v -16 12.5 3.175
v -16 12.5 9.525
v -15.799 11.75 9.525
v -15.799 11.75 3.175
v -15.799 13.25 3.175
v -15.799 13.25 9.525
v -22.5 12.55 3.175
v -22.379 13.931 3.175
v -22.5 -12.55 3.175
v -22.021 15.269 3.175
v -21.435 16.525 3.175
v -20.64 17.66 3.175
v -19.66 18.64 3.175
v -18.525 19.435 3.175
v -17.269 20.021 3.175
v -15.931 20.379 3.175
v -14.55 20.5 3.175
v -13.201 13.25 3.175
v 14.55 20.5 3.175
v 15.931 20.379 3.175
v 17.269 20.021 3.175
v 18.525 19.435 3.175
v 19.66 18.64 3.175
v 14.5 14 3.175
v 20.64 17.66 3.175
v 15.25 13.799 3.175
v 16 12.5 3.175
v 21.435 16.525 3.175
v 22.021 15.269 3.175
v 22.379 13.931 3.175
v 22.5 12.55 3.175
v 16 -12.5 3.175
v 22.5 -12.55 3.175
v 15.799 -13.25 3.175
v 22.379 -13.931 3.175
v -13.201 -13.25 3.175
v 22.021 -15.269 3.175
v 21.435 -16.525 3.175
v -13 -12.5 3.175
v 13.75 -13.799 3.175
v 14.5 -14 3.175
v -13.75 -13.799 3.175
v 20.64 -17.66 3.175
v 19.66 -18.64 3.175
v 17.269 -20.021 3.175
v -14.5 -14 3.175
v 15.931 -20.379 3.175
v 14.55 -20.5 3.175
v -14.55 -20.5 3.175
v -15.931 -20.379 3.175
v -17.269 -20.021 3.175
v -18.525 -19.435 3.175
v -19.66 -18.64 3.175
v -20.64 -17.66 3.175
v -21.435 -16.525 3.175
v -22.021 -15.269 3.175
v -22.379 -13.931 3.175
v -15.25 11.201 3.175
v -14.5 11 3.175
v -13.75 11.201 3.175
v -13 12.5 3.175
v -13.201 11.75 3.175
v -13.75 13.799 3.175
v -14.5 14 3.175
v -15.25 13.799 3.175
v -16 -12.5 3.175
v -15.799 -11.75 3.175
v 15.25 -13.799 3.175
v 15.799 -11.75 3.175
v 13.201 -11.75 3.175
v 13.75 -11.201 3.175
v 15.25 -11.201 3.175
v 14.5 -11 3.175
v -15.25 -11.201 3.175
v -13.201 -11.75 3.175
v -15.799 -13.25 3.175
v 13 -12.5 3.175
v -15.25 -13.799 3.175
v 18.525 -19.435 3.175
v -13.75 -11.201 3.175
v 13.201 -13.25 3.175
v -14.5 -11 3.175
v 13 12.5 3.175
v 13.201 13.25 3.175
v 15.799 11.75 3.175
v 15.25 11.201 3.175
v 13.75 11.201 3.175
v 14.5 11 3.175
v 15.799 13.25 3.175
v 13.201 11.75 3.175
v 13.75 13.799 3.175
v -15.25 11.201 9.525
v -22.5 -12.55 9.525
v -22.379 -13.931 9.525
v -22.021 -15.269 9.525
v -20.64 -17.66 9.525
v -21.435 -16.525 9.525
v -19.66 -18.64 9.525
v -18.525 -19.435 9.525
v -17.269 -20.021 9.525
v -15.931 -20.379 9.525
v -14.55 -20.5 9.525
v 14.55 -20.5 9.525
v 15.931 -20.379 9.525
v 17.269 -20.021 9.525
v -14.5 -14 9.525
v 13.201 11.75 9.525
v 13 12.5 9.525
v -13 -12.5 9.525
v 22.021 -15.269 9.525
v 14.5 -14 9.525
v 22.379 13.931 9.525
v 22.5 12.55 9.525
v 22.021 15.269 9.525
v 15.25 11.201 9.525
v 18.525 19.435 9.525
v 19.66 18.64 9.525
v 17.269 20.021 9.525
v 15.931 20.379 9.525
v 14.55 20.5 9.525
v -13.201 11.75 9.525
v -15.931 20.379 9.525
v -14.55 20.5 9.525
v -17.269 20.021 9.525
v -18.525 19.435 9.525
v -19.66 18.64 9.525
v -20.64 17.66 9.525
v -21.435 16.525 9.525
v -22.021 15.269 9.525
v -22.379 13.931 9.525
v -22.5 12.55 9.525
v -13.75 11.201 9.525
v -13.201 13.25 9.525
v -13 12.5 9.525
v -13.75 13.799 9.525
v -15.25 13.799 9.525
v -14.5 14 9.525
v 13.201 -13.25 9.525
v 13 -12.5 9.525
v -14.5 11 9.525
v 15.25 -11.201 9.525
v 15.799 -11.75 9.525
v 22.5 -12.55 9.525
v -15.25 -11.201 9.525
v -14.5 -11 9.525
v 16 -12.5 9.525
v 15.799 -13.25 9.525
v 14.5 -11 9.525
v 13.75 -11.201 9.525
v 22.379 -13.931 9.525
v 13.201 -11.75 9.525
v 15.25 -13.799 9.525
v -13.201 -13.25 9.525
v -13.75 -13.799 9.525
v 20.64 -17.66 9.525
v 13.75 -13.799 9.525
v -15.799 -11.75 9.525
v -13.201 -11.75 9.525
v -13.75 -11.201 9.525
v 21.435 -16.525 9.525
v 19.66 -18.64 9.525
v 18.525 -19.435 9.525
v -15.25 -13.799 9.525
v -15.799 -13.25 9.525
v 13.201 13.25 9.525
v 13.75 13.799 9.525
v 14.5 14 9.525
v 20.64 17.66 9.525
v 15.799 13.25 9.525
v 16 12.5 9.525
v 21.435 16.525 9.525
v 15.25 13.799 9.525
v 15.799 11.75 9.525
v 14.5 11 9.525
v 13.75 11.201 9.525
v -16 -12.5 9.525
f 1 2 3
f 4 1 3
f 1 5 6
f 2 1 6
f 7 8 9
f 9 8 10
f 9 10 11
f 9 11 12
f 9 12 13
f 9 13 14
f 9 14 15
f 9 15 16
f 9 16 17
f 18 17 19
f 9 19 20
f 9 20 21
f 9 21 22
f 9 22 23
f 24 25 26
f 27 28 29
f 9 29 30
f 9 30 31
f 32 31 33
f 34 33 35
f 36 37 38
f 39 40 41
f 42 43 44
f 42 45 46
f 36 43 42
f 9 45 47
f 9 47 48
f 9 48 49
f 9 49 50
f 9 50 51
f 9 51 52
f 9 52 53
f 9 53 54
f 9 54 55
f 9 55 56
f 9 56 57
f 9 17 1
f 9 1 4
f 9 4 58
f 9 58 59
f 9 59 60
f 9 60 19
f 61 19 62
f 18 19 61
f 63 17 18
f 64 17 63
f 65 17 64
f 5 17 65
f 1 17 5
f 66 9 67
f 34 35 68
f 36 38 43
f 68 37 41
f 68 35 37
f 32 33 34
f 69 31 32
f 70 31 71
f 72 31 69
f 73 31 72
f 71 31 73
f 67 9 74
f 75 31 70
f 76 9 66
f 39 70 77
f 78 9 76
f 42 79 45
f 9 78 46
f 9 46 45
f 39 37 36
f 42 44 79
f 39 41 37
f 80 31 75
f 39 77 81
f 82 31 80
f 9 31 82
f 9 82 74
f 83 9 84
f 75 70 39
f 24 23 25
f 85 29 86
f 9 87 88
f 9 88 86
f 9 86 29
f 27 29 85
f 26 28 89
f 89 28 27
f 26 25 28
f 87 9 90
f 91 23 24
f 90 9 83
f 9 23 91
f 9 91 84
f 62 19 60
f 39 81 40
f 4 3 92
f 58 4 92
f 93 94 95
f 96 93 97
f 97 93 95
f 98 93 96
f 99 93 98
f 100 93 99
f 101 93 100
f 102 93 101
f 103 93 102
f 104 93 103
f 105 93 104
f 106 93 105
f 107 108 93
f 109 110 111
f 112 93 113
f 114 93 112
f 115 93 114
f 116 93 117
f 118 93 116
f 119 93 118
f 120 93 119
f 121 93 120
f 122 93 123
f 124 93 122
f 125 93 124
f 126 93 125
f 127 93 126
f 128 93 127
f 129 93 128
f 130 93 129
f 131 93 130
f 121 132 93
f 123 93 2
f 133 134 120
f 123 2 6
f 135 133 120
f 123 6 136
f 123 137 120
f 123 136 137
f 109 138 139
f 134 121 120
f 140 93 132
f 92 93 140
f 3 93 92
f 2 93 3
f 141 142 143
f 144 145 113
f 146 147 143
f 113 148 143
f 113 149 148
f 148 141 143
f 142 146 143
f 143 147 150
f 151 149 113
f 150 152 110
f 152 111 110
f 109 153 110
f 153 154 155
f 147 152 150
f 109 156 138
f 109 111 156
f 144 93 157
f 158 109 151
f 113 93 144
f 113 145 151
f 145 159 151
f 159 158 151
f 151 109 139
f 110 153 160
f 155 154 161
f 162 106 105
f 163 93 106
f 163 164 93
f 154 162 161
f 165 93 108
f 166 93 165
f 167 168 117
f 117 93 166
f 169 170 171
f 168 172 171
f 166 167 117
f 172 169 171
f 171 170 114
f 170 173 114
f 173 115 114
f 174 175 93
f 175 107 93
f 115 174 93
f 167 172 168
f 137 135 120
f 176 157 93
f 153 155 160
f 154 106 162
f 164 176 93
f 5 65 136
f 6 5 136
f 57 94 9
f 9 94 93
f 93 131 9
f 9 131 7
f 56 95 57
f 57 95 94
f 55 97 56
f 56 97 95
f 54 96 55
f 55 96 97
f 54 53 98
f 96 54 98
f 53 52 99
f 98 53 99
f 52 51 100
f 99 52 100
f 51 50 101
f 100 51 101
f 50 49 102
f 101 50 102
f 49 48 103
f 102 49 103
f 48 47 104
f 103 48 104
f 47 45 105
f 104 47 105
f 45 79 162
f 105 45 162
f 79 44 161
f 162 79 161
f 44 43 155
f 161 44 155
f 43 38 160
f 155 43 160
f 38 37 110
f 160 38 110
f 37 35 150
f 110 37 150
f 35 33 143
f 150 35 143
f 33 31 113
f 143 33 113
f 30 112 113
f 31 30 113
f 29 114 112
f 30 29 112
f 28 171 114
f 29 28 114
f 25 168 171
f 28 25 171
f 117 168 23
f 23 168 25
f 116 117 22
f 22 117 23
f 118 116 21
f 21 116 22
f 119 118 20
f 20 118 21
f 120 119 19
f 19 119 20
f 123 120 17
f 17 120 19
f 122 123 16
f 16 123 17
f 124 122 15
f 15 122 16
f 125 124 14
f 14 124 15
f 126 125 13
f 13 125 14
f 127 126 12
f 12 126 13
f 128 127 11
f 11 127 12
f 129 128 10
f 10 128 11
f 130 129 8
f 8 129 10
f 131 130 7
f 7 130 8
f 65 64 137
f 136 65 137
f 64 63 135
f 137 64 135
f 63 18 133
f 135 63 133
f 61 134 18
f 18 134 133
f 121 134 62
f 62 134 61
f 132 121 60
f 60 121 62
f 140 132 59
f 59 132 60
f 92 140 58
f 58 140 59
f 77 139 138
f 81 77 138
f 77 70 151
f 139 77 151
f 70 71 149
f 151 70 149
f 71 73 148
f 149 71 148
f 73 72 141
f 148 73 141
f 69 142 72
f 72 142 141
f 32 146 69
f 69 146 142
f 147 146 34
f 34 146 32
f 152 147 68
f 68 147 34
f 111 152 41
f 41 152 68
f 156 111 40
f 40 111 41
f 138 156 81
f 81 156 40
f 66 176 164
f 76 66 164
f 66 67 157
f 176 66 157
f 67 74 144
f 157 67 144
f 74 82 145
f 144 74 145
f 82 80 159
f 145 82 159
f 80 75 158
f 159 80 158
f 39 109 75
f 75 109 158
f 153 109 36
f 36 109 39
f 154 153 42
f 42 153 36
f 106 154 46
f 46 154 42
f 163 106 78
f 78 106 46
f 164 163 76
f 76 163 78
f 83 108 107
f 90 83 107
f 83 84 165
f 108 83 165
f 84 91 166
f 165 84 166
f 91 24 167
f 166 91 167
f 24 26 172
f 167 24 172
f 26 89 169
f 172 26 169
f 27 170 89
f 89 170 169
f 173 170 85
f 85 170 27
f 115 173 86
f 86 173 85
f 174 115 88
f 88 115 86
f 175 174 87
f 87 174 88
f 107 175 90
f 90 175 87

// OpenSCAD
thickness = 25.4/4;
outside_radius = 8;
separation = 29;
spacing = 25;

module plate(h) {
  linear_extrude(height=h) difference() {
    minkowski() {
      square([0.1+separation, 0.1+spacing], center=true);
      circle(r=outside_radius-0.05, $fn=36);
    }
    for (x = [-separation/2, separation/2]) {
      for (y = [-spacing/2, spacing/2]) {
        translate([x, y])
          circle(r=1.5, $fn=12);
      }
    }
  }
}

translate([0, 0, thickness/2])
  plate(thickness);
